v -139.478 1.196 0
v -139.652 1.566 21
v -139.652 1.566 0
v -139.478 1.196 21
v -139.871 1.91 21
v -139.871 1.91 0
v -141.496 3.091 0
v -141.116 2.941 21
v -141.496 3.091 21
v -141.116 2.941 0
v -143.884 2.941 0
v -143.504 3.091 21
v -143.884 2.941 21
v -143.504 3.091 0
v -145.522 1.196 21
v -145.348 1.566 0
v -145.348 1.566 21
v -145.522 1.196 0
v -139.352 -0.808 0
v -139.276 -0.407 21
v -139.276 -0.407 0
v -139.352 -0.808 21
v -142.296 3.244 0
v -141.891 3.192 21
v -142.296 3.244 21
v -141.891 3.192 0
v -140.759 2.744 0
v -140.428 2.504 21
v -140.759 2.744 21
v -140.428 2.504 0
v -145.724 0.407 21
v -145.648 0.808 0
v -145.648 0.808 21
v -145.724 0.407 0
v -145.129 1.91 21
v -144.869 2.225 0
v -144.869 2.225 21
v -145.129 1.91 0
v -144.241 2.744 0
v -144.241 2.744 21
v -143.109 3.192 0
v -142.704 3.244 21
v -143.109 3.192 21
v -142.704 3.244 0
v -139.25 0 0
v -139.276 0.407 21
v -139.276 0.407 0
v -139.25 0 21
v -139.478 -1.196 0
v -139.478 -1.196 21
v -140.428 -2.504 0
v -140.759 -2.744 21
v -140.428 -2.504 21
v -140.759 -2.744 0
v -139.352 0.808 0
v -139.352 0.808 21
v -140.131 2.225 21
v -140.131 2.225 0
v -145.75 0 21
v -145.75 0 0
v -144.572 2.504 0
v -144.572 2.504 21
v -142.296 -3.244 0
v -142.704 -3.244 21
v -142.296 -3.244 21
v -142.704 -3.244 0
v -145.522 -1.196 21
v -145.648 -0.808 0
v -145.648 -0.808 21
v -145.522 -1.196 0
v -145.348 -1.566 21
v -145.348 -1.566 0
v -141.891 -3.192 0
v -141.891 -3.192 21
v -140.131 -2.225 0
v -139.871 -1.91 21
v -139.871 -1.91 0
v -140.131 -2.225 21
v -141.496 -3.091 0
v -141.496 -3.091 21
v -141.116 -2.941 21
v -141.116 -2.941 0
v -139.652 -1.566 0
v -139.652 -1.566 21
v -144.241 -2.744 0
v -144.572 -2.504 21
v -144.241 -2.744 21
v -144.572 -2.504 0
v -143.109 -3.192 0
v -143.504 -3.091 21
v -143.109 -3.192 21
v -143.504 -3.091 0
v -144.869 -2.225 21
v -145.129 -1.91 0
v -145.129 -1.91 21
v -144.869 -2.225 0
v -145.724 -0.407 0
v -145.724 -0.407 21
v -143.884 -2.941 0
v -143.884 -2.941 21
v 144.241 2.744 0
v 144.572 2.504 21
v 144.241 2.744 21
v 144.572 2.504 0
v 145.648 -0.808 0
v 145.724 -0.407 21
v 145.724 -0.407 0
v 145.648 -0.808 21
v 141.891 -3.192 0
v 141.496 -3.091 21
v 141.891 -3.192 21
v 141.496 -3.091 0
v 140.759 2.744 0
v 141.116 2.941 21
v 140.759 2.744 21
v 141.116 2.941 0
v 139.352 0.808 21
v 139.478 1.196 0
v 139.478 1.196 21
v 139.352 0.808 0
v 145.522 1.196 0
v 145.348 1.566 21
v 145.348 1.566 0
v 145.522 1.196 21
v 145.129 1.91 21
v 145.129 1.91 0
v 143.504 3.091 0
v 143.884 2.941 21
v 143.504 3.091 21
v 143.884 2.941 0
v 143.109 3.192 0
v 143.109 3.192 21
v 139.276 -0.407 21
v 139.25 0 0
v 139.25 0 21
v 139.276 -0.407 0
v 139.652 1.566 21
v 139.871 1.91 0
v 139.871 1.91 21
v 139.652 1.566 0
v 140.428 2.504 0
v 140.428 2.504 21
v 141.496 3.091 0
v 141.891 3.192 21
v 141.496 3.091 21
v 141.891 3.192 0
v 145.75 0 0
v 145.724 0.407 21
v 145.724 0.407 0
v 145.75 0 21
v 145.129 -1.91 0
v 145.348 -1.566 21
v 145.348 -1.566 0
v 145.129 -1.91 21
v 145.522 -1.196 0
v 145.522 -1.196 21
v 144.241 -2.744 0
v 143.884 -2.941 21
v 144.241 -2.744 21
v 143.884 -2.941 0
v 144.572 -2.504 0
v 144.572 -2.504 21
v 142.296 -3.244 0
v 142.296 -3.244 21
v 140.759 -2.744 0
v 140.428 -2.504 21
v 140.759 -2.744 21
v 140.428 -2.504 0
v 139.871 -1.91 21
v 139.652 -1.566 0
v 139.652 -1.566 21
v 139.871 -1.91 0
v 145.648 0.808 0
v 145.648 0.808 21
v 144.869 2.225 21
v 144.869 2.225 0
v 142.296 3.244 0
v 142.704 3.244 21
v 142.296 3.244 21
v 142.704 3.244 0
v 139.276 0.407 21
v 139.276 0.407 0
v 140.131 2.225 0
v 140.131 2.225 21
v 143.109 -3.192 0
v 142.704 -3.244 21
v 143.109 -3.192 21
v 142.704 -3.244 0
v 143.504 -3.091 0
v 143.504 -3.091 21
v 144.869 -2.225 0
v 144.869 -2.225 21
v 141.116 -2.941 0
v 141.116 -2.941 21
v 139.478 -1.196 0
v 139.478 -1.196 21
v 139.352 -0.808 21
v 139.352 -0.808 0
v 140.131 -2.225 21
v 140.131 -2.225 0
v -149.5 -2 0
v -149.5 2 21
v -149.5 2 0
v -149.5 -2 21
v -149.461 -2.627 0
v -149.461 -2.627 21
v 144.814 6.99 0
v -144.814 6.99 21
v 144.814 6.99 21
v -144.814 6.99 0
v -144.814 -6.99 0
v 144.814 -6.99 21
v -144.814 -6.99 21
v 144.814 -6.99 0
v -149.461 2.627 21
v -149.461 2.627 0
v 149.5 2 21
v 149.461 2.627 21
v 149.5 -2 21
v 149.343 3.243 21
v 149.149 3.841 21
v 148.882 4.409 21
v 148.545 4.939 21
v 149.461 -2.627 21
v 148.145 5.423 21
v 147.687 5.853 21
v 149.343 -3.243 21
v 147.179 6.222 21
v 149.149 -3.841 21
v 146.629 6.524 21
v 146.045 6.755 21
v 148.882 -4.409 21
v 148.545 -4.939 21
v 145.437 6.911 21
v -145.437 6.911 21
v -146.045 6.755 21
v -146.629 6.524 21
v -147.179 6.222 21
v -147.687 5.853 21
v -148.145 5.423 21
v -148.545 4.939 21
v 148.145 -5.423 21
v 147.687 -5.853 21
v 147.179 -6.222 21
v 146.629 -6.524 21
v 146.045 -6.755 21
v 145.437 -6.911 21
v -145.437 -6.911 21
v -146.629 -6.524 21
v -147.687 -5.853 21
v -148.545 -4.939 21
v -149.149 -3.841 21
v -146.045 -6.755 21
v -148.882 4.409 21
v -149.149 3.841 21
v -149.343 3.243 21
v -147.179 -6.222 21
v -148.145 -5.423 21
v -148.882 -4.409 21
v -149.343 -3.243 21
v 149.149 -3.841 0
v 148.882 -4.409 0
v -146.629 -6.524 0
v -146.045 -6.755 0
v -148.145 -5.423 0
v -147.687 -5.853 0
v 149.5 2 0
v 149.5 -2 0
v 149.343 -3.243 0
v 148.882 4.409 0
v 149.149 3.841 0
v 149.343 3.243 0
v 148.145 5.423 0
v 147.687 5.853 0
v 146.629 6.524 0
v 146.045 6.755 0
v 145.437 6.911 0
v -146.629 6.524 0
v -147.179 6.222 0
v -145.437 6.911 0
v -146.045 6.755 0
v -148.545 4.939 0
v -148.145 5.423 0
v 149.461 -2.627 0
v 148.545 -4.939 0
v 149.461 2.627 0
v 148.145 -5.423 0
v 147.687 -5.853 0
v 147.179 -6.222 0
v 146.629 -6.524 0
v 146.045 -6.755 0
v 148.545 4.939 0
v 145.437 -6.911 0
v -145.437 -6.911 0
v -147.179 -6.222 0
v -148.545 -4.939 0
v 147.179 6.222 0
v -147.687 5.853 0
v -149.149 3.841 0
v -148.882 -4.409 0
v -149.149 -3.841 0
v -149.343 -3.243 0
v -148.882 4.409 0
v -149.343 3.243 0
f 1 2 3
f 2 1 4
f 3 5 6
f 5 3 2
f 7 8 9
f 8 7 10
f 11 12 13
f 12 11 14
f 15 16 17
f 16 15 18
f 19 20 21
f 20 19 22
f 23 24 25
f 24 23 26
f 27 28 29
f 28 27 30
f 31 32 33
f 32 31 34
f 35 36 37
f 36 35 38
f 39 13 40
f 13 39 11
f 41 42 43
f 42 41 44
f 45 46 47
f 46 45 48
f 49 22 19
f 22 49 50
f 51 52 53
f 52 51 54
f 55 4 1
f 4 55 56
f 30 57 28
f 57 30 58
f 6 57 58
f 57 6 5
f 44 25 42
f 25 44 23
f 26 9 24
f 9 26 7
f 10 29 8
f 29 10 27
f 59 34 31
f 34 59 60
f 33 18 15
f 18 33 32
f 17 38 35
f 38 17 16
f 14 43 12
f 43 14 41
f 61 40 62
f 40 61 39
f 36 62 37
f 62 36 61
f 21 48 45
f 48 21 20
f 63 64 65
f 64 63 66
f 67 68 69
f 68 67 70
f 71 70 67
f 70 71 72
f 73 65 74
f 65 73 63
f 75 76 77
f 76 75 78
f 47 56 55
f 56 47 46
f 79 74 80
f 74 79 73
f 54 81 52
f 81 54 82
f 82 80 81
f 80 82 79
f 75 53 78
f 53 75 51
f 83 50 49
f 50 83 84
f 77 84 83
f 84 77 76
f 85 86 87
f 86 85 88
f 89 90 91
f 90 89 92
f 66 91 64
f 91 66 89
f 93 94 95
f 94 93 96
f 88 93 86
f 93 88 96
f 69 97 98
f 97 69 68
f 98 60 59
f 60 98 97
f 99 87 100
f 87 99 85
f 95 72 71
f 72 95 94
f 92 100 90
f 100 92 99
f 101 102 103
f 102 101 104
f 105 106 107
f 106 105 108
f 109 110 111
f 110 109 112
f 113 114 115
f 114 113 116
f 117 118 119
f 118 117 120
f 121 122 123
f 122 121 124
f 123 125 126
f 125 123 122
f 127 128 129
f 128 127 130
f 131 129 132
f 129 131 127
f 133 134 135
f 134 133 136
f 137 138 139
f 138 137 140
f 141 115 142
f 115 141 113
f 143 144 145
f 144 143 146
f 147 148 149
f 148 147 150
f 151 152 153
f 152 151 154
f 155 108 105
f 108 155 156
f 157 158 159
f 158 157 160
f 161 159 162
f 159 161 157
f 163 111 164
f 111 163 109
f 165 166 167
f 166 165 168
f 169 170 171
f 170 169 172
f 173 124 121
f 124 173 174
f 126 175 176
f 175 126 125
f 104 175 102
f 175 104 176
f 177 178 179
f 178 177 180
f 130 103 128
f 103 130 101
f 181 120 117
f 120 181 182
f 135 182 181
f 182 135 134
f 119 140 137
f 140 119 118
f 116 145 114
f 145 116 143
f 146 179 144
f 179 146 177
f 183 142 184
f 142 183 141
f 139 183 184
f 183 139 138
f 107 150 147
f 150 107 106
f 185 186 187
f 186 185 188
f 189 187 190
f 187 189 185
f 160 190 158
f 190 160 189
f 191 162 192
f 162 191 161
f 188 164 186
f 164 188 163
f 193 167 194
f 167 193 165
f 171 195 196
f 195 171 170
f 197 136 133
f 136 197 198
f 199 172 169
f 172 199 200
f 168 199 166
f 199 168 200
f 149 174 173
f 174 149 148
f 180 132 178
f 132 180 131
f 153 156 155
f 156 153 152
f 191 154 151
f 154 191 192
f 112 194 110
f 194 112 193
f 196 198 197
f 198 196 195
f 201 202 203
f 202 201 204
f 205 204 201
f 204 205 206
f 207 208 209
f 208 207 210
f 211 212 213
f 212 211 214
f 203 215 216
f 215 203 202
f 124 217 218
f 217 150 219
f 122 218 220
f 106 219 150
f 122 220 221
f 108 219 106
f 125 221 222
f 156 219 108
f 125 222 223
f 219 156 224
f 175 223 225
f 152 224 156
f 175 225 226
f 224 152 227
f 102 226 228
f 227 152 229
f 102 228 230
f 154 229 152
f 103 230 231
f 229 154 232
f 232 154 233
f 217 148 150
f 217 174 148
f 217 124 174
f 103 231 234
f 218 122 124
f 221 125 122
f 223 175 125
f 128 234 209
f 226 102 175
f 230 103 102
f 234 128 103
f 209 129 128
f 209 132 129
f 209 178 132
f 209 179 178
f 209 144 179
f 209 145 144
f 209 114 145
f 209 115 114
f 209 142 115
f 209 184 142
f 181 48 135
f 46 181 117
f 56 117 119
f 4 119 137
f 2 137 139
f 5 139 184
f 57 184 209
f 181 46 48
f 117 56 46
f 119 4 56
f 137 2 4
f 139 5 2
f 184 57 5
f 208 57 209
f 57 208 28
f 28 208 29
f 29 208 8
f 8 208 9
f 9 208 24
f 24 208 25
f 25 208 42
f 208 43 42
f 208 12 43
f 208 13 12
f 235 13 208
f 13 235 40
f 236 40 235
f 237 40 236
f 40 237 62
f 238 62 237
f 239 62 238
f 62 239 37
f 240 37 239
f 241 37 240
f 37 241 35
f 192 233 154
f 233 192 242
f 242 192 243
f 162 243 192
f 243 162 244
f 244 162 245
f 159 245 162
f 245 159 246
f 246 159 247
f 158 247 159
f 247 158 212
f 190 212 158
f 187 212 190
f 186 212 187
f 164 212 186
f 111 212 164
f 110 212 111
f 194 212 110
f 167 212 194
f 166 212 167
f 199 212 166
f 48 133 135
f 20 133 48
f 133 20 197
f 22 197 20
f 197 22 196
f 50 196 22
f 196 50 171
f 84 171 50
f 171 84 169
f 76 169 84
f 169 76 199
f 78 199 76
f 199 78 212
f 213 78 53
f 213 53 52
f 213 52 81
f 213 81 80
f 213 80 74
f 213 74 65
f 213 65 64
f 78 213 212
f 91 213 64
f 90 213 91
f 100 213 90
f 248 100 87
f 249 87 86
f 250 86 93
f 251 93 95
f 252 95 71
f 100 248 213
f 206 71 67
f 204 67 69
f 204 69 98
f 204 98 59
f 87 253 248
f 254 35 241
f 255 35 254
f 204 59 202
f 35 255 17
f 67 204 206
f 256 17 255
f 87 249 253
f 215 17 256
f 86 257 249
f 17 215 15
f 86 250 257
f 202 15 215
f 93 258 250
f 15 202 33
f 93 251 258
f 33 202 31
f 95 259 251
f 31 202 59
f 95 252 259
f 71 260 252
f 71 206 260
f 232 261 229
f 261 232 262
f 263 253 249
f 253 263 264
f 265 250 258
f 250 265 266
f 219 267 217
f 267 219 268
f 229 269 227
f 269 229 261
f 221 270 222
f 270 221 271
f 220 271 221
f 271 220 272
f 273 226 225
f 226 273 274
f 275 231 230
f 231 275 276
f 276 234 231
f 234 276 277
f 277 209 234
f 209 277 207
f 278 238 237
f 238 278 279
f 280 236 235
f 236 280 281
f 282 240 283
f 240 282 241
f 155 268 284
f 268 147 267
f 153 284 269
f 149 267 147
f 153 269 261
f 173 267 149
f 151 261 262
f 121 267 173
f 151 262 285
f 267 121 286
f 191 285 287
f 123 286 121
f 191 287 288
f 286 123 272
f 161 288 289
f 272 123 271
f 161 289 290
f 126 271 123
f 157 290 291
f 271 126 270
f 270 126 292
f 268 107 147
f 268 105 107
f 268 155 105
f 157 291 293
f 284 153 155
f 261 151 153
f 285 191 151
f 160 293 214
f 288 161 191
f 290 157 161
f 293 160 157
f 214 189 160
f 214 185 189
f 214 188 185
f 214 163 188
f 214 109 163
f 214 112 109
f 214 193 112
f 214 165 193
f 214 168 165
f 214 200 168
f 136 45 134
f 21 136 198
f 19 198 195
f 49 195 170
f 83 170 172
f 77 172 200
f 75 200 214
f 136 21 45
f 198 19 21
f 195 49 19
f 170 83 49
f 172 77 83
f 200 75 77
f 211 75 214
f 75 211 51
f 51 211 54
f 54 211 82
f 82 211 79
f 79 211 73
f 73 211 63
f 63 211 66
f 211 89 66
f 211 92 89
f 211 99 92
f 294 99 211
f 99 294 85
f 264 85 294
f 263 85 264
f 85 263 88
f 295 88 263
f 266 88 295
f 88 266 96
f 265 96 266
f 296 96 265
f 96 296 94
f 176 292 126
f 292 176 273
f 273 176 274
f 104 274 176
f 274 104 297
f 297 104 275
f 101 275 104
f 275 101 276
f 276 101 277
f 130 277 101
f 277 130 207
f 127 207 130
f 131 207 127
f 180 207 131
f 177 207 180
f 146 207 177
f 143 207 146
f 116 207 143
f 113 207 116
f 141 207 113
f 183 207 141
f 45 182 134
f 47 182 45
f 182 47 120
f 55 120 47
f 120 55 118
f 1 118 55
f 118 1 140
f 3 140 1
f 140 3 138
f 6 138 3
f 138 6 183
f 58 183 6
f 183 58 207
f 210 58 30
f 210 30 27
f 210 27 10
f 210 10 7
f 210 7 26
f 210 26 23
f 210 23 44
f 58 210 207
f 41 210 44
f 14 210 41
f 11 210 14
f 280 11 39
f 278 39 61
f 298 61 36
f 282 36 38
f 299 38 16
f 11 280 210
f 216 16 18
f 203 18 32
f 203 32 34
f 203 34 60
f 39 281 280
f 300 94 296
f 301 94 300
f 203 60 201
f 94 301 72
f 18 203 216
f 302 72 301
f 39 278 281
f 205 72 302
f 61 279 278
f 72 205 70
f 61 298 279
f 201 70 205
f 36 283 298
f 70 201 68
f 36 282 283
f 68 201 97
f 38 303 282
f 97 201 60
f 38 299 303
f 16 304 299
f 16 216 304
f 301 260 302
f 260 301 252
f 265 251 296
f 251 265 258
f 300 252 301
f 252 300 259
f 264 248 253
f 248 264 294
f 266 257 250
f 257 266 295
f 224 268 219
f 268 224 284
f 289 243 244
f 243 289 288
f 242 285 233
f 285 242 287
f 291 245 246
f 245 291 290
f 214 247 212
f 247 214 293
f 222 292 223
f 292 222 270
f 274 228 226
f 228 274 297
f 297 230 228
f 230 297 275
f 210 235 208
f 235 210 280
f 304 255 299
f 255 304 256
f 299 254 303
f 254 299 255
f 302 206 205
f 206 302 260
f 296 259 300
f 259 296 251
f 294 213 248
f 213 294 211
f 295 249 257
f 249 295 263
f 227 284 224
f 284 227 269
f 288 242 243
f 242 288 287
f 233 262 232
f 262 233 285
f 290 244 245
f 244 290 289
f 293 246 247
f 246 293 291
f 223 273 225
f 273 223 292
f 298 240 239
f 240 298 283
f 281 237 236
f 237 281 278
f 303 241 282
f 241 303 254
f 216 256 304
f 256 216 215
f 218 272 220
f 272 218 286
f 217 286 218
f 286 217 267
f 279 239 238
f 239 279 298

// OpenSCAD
$fn = 50;


difference() {
	union() {
		hull() {
			translate(v = [-144.5000000000, 2.0000000000, 0]) {
				cylinder(h = 21, r = 5);
			}
			translate(v = [144.5000000000, 2.0000000000, 0]) {
				cylinder(h = 21, r = 5);
			}
			translate(v = [-144.5000000000, -2.0000000000, 0]) {
				cylinder(h = 21, r = 5);
			}
			translate(v = [144.5000000000, -2.0000000000, 0]) {
				cylinder(h = 21, r = 5);
			}
		}
	}
	union() {
		translate(v = [-142.5000000000, 0.0000000000, -100.0000000000]) {
			cylinder(h = 200, r = 3.2500000000);
		}
		translate(v = [-142.5000000000, 0.0000000000, -100.0000000000]) {
			cylinder(h = 200, r = 3.2500000000);
		}
		translate(v = [142.5000000000, 0.0000000000, -100.0000000000]) {
			cylinder(h = 200, r = 3.2500000000);
		}
		translate(v = [142.5000000000, 0.0000000000, -100.0000000000]) {
			cylinder(h = 200, r = 3.2500000000);
		}
	}
}
